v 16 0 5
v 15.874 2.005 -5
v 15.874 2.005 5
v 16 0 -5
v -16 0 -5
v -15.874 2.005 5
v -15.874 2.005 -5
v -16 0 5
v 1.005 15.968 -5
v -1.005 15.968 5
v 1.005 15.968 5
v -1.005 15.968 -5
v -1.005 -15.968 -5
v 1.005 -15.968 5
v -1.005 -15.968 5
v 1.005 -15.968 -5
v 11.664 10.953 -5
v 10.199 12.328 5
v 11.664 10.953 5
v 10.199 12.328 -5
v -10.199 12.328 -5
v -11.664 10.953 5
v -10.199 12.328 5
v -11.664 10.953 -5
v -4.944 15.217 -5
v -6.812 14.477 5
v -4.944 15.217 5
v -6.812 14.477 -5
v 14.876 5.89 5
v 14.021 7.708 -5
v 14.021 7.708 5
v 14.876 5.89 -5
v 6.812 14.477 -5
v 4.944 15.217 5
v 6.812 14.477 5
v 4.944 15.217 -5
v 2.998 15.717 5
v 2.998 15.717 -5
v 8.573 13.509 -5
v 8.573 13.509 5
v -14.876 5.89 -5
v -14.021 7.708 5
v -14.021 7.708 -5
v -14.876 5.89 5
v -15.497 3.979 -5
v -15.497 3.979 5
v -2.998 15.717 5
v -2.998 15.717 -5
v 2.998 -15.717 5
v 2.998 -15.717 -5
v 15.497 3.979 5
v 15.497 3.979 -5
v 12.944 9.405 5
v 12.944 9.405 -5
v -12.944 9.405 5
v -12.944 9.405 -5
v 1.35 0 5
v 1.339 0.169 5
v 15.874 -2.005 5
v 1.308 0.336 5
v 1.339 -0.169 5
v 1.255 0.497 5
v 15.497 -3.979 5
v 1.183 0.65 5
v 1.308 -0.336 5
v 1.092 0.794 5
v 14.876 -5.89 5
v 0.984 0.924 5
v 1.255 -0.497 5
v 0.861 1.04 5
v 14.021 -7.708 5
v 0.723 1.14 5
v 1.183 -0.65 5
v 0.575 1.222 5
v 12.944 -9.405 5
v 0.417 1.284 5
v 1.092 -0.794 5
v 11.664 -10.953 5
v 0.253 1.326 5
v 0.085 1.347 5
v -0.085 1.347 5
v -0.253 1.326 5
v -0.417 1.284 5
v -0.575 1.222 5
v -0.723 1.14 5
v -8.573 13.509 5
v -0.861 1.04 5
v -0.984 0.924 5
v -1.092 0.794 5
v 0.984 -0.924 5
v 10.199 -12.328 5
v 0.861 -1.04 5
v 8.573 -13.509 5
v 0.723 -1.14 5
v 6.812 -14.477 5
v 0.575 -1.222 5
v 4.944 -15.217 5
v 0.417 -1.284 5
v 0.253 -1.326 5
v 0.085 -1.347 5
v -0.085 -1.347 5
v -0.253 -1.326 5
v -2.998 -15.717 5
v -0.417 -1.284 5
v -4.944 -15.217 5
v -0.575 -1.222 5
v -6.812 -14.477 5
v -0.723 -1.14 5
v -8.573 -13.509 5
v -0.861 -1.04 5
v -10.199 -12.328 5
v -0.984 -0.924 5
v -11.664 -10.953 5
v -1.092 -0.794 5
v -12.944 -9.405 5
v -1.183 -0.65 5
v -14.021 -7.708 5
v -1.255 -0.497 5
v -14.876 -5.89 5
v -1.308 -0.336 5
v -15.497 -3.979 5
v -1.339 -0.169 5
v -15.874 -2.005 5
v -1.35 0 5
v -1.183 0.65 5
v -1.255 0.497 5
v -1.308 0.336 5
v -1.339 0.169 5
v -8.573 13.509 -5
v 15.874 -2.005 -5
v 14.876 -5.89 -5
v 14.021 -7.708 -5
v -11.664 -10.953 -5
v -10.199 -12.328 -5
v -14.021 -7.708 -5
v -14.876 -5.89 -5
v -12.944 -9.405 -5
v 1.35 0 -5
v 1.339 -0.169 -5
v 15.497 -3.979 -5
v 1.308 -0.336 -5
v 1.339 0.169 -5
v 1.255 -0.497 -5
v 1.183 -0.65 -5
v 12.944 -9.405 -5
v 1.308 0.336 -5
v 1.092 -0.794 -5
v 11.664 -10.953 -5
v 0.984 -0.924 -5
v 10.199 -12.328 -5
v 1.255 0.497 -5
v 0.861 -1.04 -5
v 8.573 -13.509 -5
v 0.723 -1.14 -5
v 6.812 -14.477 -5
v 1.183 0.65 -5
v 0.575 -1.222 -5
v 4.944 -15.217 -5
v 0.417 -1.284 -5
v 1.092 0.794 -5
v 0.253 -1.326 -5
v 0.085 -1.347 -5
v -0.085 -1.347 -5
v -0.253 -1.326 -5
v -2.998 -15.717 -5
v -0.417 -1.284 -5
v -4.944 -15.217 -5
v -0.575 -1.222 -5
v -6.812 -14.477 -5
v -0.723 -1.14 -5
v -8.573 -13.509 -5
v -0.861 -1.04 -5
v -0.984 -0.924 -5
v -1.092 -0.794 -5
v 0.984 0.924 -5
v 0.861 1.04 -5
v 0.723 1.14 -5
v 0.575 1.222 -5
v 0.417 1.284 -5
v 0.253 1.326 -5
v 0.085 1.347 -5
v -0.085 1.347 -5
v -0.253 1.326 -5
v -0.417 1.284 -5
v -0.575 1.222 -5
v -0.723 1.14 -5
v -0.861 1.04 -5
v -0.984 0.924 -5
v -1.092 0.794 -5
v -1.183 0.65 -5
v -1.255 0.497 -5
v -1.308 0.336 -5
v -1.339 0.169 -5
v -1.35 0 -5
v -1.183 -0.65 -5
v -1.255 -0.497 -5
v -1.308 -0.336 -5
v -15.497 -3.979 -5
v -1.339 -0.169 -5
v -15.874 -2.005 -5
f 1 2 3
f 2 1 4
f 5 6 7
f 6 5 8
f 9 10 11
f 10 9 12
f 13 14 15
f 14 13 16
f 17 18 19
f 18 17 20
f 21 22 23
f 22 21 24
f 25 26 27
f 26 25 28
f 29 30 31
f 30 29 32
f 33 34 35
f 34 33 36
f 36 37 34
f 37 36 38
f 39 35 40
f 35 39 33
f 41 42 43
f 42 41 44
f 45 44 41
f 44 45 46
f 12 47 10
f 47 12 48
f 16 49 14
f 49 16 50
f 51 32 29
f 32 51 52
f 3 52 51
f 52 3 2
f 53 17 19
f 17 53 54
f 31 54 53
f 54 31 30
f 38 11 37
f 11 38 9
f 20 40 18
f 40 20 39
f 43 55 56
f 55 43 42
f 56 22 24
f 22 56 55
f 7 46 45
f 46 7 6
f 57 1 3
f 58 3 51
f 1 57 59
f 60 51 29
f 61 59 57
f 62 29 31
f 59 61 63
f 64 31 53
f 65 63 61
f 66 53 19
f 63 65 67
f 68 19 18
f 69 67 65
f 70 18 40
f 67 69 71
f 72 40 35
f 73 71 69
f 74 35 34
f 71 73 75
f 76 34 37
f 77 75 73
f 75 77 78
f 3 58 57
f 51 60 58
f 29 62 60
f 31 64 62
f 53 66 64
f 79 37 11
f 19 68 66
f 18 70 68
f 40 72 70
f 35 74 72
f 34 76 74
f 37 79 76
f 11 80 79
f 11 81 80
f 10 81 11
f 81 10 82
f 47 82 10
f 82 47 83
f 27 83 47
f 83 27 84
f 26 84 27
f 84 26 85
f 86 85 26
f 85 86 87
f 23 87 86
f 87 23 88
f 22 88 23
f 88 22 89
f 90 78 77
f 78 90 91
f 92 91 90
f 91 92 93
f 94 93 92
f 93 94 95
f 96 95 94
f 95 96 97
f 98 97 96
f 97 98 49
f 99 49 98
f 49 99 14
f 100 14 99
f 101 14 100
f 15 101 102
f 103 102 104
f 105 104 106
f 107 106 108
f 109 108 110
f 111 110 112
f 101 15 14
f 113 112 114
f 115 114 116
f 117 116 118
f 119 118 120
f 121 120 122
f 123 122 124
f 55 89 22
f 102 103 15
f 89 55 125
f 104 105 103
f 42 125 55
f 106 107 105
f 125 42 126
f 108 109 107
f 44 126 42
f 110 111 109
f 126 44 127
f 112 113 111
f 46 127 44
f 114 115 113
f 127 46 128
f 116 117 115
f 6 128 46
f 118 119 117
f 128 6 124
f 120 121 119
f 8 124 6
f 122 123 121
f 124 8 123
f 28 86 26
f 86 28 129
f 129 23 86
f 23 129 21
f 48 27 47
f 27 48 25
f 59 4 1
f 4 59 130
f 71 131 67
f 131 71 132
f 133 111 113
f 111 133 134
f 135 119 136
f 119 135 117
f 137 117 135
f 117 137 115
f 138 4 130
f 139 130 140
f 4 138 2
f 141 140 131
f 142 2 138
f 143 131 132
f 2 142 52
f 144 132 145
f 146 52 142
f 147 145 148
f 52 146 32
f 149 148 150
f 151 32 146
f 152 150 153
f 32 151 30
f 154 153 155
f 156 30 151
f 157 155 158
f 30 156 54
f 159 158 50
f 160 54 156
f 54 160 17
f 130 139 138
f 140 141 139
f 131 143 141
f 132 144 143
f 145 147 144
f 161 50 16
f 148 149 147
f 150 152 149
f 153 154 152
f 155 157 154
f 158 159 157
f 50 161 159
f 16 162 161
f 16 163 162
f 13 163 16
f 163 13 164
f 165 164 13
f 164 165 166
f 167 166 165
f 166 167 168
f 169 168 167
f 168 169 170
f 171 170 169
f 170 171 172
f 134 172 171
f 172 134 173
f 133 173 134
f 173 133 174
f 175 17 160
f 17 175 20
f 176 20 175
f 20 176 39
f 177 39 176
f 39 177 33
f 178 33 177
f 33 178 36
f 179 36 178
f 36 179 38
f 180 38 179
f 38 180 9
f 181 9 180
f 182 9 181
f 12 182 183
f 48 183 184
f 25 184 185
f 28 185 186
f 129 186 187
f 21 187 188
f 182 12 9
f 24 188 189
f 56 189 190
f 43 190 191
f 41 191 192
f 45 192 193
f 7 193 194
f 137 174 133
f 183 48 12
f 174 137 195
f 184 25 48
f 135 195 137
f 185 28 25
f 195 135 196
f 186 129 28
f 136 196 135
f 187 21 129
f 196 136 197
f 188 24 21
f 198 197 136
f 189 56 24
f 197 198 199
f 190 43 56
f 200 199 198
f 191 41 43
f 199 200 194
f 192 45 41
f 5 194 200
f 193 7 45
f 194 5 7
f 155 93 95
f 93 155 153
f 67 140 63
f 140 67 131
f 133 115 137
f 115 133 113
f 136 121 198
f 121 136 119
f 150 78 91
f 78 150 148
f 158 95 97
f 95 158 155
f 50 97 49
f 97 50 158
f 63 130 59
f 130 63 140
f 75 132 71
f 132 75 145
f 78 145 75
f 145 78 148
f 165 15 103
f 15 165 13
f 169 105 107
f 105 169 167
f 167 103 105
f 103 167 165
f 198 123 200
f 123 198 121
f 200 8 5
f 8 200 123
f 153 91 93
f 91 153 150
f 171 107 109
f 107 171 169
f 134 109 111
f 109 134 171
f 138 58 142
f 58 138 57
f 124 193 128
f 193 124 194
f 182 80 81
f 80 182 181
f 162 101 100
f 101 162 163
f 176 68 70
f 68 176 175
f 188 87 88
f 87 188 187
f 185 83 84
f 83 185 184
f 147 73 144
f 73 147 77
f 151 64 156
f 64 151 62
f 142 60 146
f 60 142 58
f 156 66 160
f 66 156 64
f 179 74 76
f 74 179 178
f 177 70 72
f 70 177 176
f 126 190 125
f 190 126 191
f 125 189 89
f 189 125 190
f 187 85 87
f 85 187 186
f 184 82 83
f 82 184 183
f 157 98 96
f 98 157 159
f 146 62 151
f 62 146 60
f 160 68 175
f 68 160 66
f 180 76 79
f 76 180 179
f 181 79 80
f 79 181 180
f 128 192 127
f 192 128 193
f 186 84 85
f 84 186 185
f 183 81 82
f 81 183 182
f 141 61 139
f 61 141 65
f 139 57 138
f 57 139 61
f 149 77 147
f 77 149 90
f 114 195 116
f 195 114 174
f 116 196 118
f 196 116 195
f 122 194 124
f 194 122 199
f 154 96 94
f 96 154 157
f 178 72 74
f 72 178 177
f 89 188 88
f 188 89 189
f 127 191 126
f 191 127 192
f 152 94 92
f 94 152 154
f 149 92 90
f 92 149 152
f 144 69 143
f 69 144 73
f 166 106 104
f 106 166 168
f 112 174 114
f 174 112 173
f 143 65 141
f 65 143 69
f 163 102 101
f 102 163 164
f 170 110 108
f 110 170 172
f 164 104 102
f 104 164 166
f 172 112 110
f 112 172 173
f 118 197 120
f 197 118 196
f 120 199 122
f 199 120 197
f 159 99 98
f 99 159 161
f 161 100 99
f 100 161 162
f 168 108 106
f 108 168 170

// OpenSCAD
$fn = 50;


difference() {
	union() {
		translate(v = [0, 0, -5.0000000000]) {
			cylinder(h = 10, r = 16.0000000000);
		}
	}
	union() {
		translate(v = [0, 0, -100.0000000000]) {
			cylinder(h = 200, r = 1.3500000000);
		}
	}
}
